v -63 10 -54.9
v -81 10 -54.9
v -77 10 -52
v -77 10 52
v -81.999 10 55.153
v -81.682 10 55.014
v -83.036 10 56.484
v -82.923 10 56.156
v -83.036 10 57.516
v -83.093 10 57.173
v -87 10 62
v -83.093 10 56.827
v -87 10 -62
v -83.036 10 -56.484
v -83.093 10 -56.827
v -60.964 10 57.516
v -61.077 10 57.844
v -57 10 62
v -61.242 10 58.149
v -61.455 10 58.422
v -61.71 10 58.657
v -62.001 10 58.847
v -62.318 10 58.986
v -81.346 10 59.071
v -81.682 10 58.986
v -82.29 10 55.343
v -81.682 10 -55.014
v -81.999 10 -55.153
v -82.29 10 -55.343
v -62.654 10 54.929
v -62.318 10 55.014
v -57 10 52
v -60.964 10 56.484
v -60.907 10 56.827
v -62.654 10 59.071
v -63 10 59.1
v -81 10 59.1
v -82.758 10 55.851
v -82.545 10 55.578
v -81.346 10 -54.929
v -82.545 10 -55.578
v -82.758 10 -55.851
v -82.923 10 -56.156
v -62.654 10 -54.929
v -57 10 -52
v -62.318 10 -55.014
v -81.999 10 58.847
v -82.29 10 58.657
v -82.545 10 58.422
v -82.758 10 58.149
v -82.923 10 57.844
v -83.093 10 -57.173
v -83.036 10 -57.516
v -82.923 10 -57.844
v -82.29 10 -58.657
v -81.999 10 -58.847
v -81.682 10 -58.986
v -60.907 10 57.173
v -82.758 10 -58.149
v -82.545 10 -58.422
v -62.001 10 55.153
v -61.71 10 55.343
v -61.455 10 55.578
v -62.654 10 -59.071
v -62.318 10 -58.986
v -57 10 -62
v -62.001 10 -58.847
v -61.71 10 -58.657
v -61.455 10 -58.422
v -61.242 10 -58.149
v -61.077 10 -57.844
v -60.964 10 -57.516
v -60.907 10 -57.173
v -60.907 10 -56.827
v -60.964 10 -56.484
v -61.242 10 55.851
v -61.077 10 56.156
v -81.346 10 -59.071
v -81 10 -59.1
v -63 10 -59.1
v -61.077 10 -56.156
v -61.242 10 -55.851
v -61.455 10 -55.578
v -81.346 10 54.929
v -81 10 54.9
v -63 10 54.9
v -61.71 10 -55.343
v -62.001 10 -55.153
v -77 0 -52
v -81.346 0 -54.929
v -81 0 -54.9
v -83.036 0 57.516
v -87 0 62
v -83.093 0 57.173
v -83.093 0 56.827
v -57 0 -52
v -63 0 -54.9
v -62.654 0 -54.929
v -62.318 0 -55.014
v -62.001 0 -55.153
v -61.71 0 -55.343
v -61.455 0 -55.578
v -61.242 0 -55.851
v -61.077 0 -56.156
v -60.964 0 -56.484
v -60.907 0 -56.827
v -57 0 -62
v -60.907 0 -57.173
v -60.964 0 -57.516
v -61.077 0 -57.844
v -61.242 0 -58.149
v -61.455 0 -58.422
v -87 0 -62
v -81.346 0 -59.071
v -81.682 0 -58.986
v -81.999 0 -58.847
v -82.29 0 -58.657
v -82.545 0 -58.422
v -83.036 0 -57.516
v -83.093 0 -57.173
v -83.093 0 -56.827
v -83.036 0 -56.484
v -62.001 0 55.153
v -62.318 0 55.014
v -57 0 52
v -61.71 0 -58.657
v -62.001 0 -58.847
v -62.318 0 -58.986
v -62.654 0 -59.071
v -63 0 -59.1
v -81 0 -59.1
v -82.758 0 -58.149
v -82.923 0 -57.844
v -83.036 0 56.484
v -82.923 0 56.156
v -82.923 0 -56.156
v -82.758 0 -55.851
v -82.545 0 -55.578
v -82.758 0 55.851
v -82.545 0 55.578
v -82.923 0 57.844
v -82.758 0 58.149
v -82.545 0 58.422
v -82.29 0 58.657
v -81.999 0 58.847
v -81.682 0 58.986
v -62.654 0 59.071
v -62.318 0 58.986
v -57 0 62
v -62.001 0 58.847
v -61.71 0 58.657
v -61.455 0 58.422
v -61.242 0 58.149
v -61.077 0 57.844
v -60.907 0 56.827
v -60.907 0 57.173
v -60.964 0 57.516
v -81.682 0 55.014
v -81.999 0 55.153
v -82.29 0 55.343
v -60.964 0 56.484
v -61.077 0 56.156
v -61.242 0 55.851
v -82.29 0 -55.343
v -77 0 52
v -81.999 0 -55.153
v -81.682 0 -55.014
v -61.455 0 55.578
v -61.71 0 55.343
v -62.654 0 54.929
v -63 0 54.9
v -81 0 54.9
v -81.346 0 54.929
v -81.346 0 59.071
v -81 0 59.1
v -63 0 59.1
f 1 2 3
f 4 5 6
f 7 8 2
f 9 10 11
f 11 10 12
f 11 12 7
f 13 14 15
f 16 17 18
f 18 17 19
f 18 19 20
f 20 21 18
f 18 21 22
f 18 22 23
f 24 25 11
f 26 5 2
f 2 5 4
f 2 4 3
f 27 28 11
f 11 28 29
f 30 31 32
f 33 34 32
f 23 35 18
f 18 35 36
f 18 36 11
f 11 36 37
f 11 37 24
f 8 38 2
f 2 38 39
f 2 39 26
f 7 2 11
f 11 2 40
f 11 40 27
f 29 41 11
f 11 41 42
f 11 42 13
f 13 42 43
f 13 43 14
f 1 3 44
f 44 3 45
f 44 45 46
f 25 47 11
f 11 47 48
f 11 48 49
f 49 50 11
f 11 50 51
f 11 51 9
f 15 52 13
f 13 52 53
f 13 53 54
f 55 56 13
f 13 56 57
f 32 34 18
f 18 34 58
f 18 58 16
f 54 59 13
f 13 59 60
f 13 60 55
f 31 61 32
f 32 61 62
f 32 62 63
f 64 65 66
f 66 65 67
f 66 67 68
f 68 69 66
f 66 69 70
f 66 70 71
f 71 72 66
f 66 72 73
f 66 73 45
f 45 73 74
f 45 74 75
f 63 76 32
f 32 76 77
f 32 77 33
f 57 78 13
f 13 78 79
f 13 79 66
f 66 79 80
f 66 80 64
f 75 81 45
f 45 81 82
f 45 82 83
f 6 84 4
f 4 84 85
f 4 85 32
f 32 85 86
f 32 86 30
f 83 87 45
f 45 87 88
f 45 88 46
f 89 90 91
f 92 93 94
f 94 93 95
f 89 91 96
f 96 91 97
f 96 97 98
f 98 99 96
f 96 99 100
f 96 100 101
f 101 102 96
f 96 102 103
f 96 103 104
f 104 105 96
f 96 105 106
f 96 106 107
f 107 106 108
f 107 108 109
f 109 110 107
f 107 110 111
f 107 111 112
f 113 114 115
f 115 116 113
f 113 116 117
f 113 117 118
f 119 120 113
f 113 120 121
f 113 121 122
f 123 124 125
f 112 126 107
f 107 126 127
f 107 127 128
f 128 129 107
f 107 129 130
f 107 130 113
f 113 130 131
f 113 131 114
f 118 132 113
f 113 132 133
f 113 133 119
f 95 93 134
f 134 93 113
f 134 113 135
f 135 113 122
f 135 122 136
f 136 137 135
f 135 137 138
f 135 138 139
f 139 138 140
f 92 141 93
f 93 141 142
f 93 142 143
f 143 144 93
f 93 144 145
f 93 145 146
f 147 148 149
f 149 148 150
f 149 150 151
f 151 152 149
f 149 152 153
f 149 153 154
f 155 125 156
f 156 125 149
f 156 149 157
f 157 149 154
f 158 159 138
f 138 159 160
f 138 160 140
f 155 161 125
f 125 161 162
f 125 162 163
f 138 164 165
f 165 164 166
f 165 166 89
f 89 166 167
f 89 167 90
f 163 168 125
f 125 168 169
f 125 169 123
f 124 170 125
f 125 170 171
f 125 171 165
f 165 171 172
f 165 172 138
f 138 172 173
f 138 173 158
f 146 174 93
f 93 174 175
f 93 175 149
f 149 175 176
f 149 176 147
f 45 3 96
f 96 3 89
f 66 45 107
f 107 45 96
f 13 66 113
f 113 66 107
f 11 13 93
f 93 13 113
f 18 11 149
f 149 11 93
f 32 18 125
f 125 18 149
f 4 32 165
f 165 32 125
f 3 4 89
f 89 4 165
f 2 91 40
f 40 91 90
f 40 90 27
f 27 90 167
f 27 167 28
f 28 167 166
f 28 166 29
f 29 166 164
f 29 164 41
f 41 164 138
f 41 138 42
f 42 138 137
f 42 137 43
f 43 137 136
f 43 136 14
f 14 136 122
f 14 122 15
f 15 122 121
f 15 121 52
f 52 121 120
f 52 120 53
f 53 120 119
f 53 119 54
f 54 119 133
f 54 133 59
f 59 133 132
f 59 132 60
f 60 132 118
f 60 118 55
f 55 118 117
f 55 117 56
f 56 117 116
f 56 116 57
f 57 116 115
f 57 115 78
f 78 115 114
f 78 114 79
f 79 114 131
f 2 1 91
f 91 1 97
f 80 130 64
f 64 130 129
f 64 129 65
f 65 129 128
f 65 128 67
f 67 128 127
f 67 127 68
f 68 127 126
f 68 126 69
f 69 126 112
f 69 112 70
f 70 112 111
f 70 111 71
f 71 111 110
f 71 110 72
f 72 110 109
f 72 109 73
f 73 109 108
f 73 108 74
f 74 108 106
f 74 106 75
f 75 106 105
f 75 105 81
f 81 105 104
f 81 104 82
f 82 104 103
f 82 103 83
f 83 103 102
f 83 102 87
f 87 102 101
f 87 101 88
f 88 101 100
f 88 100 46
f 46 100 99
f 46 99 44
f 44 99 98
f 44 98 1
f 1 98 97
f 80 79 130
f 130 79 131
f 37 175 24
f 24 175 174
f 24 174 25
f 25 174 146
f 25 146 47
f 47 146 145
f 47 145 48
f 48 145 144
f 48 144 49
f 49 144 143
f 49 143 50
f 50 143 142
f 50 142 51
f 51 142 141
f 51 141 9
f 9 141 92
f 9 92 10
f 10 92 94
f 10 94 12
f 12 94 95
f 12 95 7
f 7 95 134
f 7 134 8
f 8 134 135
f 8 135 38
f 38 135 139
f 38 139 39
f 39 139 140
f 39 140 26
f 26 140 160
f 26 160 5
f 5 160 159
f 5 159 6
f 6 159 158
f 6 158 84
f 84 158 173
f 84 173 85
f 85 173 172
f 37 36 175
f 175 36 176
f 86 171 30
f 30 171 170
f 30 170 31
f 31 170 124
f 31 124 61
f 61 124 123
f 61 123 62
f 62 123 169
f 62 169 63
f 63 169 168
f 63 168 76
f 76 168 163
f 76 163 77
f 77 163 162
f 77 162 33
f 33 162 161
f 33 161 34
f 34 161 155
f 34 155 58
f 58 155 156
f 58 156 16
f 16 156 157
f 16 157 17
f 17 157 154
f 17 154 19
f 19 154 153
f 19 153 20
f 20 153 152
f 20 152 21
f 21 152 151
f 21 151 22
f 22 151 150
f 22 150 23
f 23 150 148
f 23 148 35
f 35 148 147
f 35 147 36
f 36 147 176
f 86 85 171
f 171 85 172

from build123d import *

# Parameters (mm, degrees)
BOSS_EXTRU_3_DEPTH = 10


with BuildPart() as part:
    # Esquisse5 → Boss.-Extru.3 (new body)
    with BuildSketch(Plane(origin=(0, 0, 0), x_dir=(1, 0, 0), z_dir=(0, 1, 0))):
        Polygon((-57, 52), (-57, 62), (-87, 62), (-87, -62), (-57, -62), (-57, -52), (-77, -52), (-77, 52), align=None)
        with BuildLine():
            Line((-81, 59.1), (-63, 59.1))
            ThreePointArc((-63, 59.1), (-60.9, 57), (-63, 54.9))
            Line((-63, 54.9), (-81, 54.9))
            ThreePointArc((-81, 54.9), (-83.1, 57), (-81, 59.1))
        make_face(mode=Mode.SUBTRACT)
        with BuildLine():
            Line((-81, -59.1), (-63, -59.1))
            ThreePointArc((-63, -59.1), (-60.9, -57), (-63, -54.9))
            Line((-63, -54.9), (-81, -54.9))
            ThreePointArc((-81, -54.9), (-83.1, -57), (-81, -59.1))
        make_face(mode=Mode.SUBTRACT)
    extrude(amount=BOSS_EXTRU_3_DEPTH)


solid = part.part
